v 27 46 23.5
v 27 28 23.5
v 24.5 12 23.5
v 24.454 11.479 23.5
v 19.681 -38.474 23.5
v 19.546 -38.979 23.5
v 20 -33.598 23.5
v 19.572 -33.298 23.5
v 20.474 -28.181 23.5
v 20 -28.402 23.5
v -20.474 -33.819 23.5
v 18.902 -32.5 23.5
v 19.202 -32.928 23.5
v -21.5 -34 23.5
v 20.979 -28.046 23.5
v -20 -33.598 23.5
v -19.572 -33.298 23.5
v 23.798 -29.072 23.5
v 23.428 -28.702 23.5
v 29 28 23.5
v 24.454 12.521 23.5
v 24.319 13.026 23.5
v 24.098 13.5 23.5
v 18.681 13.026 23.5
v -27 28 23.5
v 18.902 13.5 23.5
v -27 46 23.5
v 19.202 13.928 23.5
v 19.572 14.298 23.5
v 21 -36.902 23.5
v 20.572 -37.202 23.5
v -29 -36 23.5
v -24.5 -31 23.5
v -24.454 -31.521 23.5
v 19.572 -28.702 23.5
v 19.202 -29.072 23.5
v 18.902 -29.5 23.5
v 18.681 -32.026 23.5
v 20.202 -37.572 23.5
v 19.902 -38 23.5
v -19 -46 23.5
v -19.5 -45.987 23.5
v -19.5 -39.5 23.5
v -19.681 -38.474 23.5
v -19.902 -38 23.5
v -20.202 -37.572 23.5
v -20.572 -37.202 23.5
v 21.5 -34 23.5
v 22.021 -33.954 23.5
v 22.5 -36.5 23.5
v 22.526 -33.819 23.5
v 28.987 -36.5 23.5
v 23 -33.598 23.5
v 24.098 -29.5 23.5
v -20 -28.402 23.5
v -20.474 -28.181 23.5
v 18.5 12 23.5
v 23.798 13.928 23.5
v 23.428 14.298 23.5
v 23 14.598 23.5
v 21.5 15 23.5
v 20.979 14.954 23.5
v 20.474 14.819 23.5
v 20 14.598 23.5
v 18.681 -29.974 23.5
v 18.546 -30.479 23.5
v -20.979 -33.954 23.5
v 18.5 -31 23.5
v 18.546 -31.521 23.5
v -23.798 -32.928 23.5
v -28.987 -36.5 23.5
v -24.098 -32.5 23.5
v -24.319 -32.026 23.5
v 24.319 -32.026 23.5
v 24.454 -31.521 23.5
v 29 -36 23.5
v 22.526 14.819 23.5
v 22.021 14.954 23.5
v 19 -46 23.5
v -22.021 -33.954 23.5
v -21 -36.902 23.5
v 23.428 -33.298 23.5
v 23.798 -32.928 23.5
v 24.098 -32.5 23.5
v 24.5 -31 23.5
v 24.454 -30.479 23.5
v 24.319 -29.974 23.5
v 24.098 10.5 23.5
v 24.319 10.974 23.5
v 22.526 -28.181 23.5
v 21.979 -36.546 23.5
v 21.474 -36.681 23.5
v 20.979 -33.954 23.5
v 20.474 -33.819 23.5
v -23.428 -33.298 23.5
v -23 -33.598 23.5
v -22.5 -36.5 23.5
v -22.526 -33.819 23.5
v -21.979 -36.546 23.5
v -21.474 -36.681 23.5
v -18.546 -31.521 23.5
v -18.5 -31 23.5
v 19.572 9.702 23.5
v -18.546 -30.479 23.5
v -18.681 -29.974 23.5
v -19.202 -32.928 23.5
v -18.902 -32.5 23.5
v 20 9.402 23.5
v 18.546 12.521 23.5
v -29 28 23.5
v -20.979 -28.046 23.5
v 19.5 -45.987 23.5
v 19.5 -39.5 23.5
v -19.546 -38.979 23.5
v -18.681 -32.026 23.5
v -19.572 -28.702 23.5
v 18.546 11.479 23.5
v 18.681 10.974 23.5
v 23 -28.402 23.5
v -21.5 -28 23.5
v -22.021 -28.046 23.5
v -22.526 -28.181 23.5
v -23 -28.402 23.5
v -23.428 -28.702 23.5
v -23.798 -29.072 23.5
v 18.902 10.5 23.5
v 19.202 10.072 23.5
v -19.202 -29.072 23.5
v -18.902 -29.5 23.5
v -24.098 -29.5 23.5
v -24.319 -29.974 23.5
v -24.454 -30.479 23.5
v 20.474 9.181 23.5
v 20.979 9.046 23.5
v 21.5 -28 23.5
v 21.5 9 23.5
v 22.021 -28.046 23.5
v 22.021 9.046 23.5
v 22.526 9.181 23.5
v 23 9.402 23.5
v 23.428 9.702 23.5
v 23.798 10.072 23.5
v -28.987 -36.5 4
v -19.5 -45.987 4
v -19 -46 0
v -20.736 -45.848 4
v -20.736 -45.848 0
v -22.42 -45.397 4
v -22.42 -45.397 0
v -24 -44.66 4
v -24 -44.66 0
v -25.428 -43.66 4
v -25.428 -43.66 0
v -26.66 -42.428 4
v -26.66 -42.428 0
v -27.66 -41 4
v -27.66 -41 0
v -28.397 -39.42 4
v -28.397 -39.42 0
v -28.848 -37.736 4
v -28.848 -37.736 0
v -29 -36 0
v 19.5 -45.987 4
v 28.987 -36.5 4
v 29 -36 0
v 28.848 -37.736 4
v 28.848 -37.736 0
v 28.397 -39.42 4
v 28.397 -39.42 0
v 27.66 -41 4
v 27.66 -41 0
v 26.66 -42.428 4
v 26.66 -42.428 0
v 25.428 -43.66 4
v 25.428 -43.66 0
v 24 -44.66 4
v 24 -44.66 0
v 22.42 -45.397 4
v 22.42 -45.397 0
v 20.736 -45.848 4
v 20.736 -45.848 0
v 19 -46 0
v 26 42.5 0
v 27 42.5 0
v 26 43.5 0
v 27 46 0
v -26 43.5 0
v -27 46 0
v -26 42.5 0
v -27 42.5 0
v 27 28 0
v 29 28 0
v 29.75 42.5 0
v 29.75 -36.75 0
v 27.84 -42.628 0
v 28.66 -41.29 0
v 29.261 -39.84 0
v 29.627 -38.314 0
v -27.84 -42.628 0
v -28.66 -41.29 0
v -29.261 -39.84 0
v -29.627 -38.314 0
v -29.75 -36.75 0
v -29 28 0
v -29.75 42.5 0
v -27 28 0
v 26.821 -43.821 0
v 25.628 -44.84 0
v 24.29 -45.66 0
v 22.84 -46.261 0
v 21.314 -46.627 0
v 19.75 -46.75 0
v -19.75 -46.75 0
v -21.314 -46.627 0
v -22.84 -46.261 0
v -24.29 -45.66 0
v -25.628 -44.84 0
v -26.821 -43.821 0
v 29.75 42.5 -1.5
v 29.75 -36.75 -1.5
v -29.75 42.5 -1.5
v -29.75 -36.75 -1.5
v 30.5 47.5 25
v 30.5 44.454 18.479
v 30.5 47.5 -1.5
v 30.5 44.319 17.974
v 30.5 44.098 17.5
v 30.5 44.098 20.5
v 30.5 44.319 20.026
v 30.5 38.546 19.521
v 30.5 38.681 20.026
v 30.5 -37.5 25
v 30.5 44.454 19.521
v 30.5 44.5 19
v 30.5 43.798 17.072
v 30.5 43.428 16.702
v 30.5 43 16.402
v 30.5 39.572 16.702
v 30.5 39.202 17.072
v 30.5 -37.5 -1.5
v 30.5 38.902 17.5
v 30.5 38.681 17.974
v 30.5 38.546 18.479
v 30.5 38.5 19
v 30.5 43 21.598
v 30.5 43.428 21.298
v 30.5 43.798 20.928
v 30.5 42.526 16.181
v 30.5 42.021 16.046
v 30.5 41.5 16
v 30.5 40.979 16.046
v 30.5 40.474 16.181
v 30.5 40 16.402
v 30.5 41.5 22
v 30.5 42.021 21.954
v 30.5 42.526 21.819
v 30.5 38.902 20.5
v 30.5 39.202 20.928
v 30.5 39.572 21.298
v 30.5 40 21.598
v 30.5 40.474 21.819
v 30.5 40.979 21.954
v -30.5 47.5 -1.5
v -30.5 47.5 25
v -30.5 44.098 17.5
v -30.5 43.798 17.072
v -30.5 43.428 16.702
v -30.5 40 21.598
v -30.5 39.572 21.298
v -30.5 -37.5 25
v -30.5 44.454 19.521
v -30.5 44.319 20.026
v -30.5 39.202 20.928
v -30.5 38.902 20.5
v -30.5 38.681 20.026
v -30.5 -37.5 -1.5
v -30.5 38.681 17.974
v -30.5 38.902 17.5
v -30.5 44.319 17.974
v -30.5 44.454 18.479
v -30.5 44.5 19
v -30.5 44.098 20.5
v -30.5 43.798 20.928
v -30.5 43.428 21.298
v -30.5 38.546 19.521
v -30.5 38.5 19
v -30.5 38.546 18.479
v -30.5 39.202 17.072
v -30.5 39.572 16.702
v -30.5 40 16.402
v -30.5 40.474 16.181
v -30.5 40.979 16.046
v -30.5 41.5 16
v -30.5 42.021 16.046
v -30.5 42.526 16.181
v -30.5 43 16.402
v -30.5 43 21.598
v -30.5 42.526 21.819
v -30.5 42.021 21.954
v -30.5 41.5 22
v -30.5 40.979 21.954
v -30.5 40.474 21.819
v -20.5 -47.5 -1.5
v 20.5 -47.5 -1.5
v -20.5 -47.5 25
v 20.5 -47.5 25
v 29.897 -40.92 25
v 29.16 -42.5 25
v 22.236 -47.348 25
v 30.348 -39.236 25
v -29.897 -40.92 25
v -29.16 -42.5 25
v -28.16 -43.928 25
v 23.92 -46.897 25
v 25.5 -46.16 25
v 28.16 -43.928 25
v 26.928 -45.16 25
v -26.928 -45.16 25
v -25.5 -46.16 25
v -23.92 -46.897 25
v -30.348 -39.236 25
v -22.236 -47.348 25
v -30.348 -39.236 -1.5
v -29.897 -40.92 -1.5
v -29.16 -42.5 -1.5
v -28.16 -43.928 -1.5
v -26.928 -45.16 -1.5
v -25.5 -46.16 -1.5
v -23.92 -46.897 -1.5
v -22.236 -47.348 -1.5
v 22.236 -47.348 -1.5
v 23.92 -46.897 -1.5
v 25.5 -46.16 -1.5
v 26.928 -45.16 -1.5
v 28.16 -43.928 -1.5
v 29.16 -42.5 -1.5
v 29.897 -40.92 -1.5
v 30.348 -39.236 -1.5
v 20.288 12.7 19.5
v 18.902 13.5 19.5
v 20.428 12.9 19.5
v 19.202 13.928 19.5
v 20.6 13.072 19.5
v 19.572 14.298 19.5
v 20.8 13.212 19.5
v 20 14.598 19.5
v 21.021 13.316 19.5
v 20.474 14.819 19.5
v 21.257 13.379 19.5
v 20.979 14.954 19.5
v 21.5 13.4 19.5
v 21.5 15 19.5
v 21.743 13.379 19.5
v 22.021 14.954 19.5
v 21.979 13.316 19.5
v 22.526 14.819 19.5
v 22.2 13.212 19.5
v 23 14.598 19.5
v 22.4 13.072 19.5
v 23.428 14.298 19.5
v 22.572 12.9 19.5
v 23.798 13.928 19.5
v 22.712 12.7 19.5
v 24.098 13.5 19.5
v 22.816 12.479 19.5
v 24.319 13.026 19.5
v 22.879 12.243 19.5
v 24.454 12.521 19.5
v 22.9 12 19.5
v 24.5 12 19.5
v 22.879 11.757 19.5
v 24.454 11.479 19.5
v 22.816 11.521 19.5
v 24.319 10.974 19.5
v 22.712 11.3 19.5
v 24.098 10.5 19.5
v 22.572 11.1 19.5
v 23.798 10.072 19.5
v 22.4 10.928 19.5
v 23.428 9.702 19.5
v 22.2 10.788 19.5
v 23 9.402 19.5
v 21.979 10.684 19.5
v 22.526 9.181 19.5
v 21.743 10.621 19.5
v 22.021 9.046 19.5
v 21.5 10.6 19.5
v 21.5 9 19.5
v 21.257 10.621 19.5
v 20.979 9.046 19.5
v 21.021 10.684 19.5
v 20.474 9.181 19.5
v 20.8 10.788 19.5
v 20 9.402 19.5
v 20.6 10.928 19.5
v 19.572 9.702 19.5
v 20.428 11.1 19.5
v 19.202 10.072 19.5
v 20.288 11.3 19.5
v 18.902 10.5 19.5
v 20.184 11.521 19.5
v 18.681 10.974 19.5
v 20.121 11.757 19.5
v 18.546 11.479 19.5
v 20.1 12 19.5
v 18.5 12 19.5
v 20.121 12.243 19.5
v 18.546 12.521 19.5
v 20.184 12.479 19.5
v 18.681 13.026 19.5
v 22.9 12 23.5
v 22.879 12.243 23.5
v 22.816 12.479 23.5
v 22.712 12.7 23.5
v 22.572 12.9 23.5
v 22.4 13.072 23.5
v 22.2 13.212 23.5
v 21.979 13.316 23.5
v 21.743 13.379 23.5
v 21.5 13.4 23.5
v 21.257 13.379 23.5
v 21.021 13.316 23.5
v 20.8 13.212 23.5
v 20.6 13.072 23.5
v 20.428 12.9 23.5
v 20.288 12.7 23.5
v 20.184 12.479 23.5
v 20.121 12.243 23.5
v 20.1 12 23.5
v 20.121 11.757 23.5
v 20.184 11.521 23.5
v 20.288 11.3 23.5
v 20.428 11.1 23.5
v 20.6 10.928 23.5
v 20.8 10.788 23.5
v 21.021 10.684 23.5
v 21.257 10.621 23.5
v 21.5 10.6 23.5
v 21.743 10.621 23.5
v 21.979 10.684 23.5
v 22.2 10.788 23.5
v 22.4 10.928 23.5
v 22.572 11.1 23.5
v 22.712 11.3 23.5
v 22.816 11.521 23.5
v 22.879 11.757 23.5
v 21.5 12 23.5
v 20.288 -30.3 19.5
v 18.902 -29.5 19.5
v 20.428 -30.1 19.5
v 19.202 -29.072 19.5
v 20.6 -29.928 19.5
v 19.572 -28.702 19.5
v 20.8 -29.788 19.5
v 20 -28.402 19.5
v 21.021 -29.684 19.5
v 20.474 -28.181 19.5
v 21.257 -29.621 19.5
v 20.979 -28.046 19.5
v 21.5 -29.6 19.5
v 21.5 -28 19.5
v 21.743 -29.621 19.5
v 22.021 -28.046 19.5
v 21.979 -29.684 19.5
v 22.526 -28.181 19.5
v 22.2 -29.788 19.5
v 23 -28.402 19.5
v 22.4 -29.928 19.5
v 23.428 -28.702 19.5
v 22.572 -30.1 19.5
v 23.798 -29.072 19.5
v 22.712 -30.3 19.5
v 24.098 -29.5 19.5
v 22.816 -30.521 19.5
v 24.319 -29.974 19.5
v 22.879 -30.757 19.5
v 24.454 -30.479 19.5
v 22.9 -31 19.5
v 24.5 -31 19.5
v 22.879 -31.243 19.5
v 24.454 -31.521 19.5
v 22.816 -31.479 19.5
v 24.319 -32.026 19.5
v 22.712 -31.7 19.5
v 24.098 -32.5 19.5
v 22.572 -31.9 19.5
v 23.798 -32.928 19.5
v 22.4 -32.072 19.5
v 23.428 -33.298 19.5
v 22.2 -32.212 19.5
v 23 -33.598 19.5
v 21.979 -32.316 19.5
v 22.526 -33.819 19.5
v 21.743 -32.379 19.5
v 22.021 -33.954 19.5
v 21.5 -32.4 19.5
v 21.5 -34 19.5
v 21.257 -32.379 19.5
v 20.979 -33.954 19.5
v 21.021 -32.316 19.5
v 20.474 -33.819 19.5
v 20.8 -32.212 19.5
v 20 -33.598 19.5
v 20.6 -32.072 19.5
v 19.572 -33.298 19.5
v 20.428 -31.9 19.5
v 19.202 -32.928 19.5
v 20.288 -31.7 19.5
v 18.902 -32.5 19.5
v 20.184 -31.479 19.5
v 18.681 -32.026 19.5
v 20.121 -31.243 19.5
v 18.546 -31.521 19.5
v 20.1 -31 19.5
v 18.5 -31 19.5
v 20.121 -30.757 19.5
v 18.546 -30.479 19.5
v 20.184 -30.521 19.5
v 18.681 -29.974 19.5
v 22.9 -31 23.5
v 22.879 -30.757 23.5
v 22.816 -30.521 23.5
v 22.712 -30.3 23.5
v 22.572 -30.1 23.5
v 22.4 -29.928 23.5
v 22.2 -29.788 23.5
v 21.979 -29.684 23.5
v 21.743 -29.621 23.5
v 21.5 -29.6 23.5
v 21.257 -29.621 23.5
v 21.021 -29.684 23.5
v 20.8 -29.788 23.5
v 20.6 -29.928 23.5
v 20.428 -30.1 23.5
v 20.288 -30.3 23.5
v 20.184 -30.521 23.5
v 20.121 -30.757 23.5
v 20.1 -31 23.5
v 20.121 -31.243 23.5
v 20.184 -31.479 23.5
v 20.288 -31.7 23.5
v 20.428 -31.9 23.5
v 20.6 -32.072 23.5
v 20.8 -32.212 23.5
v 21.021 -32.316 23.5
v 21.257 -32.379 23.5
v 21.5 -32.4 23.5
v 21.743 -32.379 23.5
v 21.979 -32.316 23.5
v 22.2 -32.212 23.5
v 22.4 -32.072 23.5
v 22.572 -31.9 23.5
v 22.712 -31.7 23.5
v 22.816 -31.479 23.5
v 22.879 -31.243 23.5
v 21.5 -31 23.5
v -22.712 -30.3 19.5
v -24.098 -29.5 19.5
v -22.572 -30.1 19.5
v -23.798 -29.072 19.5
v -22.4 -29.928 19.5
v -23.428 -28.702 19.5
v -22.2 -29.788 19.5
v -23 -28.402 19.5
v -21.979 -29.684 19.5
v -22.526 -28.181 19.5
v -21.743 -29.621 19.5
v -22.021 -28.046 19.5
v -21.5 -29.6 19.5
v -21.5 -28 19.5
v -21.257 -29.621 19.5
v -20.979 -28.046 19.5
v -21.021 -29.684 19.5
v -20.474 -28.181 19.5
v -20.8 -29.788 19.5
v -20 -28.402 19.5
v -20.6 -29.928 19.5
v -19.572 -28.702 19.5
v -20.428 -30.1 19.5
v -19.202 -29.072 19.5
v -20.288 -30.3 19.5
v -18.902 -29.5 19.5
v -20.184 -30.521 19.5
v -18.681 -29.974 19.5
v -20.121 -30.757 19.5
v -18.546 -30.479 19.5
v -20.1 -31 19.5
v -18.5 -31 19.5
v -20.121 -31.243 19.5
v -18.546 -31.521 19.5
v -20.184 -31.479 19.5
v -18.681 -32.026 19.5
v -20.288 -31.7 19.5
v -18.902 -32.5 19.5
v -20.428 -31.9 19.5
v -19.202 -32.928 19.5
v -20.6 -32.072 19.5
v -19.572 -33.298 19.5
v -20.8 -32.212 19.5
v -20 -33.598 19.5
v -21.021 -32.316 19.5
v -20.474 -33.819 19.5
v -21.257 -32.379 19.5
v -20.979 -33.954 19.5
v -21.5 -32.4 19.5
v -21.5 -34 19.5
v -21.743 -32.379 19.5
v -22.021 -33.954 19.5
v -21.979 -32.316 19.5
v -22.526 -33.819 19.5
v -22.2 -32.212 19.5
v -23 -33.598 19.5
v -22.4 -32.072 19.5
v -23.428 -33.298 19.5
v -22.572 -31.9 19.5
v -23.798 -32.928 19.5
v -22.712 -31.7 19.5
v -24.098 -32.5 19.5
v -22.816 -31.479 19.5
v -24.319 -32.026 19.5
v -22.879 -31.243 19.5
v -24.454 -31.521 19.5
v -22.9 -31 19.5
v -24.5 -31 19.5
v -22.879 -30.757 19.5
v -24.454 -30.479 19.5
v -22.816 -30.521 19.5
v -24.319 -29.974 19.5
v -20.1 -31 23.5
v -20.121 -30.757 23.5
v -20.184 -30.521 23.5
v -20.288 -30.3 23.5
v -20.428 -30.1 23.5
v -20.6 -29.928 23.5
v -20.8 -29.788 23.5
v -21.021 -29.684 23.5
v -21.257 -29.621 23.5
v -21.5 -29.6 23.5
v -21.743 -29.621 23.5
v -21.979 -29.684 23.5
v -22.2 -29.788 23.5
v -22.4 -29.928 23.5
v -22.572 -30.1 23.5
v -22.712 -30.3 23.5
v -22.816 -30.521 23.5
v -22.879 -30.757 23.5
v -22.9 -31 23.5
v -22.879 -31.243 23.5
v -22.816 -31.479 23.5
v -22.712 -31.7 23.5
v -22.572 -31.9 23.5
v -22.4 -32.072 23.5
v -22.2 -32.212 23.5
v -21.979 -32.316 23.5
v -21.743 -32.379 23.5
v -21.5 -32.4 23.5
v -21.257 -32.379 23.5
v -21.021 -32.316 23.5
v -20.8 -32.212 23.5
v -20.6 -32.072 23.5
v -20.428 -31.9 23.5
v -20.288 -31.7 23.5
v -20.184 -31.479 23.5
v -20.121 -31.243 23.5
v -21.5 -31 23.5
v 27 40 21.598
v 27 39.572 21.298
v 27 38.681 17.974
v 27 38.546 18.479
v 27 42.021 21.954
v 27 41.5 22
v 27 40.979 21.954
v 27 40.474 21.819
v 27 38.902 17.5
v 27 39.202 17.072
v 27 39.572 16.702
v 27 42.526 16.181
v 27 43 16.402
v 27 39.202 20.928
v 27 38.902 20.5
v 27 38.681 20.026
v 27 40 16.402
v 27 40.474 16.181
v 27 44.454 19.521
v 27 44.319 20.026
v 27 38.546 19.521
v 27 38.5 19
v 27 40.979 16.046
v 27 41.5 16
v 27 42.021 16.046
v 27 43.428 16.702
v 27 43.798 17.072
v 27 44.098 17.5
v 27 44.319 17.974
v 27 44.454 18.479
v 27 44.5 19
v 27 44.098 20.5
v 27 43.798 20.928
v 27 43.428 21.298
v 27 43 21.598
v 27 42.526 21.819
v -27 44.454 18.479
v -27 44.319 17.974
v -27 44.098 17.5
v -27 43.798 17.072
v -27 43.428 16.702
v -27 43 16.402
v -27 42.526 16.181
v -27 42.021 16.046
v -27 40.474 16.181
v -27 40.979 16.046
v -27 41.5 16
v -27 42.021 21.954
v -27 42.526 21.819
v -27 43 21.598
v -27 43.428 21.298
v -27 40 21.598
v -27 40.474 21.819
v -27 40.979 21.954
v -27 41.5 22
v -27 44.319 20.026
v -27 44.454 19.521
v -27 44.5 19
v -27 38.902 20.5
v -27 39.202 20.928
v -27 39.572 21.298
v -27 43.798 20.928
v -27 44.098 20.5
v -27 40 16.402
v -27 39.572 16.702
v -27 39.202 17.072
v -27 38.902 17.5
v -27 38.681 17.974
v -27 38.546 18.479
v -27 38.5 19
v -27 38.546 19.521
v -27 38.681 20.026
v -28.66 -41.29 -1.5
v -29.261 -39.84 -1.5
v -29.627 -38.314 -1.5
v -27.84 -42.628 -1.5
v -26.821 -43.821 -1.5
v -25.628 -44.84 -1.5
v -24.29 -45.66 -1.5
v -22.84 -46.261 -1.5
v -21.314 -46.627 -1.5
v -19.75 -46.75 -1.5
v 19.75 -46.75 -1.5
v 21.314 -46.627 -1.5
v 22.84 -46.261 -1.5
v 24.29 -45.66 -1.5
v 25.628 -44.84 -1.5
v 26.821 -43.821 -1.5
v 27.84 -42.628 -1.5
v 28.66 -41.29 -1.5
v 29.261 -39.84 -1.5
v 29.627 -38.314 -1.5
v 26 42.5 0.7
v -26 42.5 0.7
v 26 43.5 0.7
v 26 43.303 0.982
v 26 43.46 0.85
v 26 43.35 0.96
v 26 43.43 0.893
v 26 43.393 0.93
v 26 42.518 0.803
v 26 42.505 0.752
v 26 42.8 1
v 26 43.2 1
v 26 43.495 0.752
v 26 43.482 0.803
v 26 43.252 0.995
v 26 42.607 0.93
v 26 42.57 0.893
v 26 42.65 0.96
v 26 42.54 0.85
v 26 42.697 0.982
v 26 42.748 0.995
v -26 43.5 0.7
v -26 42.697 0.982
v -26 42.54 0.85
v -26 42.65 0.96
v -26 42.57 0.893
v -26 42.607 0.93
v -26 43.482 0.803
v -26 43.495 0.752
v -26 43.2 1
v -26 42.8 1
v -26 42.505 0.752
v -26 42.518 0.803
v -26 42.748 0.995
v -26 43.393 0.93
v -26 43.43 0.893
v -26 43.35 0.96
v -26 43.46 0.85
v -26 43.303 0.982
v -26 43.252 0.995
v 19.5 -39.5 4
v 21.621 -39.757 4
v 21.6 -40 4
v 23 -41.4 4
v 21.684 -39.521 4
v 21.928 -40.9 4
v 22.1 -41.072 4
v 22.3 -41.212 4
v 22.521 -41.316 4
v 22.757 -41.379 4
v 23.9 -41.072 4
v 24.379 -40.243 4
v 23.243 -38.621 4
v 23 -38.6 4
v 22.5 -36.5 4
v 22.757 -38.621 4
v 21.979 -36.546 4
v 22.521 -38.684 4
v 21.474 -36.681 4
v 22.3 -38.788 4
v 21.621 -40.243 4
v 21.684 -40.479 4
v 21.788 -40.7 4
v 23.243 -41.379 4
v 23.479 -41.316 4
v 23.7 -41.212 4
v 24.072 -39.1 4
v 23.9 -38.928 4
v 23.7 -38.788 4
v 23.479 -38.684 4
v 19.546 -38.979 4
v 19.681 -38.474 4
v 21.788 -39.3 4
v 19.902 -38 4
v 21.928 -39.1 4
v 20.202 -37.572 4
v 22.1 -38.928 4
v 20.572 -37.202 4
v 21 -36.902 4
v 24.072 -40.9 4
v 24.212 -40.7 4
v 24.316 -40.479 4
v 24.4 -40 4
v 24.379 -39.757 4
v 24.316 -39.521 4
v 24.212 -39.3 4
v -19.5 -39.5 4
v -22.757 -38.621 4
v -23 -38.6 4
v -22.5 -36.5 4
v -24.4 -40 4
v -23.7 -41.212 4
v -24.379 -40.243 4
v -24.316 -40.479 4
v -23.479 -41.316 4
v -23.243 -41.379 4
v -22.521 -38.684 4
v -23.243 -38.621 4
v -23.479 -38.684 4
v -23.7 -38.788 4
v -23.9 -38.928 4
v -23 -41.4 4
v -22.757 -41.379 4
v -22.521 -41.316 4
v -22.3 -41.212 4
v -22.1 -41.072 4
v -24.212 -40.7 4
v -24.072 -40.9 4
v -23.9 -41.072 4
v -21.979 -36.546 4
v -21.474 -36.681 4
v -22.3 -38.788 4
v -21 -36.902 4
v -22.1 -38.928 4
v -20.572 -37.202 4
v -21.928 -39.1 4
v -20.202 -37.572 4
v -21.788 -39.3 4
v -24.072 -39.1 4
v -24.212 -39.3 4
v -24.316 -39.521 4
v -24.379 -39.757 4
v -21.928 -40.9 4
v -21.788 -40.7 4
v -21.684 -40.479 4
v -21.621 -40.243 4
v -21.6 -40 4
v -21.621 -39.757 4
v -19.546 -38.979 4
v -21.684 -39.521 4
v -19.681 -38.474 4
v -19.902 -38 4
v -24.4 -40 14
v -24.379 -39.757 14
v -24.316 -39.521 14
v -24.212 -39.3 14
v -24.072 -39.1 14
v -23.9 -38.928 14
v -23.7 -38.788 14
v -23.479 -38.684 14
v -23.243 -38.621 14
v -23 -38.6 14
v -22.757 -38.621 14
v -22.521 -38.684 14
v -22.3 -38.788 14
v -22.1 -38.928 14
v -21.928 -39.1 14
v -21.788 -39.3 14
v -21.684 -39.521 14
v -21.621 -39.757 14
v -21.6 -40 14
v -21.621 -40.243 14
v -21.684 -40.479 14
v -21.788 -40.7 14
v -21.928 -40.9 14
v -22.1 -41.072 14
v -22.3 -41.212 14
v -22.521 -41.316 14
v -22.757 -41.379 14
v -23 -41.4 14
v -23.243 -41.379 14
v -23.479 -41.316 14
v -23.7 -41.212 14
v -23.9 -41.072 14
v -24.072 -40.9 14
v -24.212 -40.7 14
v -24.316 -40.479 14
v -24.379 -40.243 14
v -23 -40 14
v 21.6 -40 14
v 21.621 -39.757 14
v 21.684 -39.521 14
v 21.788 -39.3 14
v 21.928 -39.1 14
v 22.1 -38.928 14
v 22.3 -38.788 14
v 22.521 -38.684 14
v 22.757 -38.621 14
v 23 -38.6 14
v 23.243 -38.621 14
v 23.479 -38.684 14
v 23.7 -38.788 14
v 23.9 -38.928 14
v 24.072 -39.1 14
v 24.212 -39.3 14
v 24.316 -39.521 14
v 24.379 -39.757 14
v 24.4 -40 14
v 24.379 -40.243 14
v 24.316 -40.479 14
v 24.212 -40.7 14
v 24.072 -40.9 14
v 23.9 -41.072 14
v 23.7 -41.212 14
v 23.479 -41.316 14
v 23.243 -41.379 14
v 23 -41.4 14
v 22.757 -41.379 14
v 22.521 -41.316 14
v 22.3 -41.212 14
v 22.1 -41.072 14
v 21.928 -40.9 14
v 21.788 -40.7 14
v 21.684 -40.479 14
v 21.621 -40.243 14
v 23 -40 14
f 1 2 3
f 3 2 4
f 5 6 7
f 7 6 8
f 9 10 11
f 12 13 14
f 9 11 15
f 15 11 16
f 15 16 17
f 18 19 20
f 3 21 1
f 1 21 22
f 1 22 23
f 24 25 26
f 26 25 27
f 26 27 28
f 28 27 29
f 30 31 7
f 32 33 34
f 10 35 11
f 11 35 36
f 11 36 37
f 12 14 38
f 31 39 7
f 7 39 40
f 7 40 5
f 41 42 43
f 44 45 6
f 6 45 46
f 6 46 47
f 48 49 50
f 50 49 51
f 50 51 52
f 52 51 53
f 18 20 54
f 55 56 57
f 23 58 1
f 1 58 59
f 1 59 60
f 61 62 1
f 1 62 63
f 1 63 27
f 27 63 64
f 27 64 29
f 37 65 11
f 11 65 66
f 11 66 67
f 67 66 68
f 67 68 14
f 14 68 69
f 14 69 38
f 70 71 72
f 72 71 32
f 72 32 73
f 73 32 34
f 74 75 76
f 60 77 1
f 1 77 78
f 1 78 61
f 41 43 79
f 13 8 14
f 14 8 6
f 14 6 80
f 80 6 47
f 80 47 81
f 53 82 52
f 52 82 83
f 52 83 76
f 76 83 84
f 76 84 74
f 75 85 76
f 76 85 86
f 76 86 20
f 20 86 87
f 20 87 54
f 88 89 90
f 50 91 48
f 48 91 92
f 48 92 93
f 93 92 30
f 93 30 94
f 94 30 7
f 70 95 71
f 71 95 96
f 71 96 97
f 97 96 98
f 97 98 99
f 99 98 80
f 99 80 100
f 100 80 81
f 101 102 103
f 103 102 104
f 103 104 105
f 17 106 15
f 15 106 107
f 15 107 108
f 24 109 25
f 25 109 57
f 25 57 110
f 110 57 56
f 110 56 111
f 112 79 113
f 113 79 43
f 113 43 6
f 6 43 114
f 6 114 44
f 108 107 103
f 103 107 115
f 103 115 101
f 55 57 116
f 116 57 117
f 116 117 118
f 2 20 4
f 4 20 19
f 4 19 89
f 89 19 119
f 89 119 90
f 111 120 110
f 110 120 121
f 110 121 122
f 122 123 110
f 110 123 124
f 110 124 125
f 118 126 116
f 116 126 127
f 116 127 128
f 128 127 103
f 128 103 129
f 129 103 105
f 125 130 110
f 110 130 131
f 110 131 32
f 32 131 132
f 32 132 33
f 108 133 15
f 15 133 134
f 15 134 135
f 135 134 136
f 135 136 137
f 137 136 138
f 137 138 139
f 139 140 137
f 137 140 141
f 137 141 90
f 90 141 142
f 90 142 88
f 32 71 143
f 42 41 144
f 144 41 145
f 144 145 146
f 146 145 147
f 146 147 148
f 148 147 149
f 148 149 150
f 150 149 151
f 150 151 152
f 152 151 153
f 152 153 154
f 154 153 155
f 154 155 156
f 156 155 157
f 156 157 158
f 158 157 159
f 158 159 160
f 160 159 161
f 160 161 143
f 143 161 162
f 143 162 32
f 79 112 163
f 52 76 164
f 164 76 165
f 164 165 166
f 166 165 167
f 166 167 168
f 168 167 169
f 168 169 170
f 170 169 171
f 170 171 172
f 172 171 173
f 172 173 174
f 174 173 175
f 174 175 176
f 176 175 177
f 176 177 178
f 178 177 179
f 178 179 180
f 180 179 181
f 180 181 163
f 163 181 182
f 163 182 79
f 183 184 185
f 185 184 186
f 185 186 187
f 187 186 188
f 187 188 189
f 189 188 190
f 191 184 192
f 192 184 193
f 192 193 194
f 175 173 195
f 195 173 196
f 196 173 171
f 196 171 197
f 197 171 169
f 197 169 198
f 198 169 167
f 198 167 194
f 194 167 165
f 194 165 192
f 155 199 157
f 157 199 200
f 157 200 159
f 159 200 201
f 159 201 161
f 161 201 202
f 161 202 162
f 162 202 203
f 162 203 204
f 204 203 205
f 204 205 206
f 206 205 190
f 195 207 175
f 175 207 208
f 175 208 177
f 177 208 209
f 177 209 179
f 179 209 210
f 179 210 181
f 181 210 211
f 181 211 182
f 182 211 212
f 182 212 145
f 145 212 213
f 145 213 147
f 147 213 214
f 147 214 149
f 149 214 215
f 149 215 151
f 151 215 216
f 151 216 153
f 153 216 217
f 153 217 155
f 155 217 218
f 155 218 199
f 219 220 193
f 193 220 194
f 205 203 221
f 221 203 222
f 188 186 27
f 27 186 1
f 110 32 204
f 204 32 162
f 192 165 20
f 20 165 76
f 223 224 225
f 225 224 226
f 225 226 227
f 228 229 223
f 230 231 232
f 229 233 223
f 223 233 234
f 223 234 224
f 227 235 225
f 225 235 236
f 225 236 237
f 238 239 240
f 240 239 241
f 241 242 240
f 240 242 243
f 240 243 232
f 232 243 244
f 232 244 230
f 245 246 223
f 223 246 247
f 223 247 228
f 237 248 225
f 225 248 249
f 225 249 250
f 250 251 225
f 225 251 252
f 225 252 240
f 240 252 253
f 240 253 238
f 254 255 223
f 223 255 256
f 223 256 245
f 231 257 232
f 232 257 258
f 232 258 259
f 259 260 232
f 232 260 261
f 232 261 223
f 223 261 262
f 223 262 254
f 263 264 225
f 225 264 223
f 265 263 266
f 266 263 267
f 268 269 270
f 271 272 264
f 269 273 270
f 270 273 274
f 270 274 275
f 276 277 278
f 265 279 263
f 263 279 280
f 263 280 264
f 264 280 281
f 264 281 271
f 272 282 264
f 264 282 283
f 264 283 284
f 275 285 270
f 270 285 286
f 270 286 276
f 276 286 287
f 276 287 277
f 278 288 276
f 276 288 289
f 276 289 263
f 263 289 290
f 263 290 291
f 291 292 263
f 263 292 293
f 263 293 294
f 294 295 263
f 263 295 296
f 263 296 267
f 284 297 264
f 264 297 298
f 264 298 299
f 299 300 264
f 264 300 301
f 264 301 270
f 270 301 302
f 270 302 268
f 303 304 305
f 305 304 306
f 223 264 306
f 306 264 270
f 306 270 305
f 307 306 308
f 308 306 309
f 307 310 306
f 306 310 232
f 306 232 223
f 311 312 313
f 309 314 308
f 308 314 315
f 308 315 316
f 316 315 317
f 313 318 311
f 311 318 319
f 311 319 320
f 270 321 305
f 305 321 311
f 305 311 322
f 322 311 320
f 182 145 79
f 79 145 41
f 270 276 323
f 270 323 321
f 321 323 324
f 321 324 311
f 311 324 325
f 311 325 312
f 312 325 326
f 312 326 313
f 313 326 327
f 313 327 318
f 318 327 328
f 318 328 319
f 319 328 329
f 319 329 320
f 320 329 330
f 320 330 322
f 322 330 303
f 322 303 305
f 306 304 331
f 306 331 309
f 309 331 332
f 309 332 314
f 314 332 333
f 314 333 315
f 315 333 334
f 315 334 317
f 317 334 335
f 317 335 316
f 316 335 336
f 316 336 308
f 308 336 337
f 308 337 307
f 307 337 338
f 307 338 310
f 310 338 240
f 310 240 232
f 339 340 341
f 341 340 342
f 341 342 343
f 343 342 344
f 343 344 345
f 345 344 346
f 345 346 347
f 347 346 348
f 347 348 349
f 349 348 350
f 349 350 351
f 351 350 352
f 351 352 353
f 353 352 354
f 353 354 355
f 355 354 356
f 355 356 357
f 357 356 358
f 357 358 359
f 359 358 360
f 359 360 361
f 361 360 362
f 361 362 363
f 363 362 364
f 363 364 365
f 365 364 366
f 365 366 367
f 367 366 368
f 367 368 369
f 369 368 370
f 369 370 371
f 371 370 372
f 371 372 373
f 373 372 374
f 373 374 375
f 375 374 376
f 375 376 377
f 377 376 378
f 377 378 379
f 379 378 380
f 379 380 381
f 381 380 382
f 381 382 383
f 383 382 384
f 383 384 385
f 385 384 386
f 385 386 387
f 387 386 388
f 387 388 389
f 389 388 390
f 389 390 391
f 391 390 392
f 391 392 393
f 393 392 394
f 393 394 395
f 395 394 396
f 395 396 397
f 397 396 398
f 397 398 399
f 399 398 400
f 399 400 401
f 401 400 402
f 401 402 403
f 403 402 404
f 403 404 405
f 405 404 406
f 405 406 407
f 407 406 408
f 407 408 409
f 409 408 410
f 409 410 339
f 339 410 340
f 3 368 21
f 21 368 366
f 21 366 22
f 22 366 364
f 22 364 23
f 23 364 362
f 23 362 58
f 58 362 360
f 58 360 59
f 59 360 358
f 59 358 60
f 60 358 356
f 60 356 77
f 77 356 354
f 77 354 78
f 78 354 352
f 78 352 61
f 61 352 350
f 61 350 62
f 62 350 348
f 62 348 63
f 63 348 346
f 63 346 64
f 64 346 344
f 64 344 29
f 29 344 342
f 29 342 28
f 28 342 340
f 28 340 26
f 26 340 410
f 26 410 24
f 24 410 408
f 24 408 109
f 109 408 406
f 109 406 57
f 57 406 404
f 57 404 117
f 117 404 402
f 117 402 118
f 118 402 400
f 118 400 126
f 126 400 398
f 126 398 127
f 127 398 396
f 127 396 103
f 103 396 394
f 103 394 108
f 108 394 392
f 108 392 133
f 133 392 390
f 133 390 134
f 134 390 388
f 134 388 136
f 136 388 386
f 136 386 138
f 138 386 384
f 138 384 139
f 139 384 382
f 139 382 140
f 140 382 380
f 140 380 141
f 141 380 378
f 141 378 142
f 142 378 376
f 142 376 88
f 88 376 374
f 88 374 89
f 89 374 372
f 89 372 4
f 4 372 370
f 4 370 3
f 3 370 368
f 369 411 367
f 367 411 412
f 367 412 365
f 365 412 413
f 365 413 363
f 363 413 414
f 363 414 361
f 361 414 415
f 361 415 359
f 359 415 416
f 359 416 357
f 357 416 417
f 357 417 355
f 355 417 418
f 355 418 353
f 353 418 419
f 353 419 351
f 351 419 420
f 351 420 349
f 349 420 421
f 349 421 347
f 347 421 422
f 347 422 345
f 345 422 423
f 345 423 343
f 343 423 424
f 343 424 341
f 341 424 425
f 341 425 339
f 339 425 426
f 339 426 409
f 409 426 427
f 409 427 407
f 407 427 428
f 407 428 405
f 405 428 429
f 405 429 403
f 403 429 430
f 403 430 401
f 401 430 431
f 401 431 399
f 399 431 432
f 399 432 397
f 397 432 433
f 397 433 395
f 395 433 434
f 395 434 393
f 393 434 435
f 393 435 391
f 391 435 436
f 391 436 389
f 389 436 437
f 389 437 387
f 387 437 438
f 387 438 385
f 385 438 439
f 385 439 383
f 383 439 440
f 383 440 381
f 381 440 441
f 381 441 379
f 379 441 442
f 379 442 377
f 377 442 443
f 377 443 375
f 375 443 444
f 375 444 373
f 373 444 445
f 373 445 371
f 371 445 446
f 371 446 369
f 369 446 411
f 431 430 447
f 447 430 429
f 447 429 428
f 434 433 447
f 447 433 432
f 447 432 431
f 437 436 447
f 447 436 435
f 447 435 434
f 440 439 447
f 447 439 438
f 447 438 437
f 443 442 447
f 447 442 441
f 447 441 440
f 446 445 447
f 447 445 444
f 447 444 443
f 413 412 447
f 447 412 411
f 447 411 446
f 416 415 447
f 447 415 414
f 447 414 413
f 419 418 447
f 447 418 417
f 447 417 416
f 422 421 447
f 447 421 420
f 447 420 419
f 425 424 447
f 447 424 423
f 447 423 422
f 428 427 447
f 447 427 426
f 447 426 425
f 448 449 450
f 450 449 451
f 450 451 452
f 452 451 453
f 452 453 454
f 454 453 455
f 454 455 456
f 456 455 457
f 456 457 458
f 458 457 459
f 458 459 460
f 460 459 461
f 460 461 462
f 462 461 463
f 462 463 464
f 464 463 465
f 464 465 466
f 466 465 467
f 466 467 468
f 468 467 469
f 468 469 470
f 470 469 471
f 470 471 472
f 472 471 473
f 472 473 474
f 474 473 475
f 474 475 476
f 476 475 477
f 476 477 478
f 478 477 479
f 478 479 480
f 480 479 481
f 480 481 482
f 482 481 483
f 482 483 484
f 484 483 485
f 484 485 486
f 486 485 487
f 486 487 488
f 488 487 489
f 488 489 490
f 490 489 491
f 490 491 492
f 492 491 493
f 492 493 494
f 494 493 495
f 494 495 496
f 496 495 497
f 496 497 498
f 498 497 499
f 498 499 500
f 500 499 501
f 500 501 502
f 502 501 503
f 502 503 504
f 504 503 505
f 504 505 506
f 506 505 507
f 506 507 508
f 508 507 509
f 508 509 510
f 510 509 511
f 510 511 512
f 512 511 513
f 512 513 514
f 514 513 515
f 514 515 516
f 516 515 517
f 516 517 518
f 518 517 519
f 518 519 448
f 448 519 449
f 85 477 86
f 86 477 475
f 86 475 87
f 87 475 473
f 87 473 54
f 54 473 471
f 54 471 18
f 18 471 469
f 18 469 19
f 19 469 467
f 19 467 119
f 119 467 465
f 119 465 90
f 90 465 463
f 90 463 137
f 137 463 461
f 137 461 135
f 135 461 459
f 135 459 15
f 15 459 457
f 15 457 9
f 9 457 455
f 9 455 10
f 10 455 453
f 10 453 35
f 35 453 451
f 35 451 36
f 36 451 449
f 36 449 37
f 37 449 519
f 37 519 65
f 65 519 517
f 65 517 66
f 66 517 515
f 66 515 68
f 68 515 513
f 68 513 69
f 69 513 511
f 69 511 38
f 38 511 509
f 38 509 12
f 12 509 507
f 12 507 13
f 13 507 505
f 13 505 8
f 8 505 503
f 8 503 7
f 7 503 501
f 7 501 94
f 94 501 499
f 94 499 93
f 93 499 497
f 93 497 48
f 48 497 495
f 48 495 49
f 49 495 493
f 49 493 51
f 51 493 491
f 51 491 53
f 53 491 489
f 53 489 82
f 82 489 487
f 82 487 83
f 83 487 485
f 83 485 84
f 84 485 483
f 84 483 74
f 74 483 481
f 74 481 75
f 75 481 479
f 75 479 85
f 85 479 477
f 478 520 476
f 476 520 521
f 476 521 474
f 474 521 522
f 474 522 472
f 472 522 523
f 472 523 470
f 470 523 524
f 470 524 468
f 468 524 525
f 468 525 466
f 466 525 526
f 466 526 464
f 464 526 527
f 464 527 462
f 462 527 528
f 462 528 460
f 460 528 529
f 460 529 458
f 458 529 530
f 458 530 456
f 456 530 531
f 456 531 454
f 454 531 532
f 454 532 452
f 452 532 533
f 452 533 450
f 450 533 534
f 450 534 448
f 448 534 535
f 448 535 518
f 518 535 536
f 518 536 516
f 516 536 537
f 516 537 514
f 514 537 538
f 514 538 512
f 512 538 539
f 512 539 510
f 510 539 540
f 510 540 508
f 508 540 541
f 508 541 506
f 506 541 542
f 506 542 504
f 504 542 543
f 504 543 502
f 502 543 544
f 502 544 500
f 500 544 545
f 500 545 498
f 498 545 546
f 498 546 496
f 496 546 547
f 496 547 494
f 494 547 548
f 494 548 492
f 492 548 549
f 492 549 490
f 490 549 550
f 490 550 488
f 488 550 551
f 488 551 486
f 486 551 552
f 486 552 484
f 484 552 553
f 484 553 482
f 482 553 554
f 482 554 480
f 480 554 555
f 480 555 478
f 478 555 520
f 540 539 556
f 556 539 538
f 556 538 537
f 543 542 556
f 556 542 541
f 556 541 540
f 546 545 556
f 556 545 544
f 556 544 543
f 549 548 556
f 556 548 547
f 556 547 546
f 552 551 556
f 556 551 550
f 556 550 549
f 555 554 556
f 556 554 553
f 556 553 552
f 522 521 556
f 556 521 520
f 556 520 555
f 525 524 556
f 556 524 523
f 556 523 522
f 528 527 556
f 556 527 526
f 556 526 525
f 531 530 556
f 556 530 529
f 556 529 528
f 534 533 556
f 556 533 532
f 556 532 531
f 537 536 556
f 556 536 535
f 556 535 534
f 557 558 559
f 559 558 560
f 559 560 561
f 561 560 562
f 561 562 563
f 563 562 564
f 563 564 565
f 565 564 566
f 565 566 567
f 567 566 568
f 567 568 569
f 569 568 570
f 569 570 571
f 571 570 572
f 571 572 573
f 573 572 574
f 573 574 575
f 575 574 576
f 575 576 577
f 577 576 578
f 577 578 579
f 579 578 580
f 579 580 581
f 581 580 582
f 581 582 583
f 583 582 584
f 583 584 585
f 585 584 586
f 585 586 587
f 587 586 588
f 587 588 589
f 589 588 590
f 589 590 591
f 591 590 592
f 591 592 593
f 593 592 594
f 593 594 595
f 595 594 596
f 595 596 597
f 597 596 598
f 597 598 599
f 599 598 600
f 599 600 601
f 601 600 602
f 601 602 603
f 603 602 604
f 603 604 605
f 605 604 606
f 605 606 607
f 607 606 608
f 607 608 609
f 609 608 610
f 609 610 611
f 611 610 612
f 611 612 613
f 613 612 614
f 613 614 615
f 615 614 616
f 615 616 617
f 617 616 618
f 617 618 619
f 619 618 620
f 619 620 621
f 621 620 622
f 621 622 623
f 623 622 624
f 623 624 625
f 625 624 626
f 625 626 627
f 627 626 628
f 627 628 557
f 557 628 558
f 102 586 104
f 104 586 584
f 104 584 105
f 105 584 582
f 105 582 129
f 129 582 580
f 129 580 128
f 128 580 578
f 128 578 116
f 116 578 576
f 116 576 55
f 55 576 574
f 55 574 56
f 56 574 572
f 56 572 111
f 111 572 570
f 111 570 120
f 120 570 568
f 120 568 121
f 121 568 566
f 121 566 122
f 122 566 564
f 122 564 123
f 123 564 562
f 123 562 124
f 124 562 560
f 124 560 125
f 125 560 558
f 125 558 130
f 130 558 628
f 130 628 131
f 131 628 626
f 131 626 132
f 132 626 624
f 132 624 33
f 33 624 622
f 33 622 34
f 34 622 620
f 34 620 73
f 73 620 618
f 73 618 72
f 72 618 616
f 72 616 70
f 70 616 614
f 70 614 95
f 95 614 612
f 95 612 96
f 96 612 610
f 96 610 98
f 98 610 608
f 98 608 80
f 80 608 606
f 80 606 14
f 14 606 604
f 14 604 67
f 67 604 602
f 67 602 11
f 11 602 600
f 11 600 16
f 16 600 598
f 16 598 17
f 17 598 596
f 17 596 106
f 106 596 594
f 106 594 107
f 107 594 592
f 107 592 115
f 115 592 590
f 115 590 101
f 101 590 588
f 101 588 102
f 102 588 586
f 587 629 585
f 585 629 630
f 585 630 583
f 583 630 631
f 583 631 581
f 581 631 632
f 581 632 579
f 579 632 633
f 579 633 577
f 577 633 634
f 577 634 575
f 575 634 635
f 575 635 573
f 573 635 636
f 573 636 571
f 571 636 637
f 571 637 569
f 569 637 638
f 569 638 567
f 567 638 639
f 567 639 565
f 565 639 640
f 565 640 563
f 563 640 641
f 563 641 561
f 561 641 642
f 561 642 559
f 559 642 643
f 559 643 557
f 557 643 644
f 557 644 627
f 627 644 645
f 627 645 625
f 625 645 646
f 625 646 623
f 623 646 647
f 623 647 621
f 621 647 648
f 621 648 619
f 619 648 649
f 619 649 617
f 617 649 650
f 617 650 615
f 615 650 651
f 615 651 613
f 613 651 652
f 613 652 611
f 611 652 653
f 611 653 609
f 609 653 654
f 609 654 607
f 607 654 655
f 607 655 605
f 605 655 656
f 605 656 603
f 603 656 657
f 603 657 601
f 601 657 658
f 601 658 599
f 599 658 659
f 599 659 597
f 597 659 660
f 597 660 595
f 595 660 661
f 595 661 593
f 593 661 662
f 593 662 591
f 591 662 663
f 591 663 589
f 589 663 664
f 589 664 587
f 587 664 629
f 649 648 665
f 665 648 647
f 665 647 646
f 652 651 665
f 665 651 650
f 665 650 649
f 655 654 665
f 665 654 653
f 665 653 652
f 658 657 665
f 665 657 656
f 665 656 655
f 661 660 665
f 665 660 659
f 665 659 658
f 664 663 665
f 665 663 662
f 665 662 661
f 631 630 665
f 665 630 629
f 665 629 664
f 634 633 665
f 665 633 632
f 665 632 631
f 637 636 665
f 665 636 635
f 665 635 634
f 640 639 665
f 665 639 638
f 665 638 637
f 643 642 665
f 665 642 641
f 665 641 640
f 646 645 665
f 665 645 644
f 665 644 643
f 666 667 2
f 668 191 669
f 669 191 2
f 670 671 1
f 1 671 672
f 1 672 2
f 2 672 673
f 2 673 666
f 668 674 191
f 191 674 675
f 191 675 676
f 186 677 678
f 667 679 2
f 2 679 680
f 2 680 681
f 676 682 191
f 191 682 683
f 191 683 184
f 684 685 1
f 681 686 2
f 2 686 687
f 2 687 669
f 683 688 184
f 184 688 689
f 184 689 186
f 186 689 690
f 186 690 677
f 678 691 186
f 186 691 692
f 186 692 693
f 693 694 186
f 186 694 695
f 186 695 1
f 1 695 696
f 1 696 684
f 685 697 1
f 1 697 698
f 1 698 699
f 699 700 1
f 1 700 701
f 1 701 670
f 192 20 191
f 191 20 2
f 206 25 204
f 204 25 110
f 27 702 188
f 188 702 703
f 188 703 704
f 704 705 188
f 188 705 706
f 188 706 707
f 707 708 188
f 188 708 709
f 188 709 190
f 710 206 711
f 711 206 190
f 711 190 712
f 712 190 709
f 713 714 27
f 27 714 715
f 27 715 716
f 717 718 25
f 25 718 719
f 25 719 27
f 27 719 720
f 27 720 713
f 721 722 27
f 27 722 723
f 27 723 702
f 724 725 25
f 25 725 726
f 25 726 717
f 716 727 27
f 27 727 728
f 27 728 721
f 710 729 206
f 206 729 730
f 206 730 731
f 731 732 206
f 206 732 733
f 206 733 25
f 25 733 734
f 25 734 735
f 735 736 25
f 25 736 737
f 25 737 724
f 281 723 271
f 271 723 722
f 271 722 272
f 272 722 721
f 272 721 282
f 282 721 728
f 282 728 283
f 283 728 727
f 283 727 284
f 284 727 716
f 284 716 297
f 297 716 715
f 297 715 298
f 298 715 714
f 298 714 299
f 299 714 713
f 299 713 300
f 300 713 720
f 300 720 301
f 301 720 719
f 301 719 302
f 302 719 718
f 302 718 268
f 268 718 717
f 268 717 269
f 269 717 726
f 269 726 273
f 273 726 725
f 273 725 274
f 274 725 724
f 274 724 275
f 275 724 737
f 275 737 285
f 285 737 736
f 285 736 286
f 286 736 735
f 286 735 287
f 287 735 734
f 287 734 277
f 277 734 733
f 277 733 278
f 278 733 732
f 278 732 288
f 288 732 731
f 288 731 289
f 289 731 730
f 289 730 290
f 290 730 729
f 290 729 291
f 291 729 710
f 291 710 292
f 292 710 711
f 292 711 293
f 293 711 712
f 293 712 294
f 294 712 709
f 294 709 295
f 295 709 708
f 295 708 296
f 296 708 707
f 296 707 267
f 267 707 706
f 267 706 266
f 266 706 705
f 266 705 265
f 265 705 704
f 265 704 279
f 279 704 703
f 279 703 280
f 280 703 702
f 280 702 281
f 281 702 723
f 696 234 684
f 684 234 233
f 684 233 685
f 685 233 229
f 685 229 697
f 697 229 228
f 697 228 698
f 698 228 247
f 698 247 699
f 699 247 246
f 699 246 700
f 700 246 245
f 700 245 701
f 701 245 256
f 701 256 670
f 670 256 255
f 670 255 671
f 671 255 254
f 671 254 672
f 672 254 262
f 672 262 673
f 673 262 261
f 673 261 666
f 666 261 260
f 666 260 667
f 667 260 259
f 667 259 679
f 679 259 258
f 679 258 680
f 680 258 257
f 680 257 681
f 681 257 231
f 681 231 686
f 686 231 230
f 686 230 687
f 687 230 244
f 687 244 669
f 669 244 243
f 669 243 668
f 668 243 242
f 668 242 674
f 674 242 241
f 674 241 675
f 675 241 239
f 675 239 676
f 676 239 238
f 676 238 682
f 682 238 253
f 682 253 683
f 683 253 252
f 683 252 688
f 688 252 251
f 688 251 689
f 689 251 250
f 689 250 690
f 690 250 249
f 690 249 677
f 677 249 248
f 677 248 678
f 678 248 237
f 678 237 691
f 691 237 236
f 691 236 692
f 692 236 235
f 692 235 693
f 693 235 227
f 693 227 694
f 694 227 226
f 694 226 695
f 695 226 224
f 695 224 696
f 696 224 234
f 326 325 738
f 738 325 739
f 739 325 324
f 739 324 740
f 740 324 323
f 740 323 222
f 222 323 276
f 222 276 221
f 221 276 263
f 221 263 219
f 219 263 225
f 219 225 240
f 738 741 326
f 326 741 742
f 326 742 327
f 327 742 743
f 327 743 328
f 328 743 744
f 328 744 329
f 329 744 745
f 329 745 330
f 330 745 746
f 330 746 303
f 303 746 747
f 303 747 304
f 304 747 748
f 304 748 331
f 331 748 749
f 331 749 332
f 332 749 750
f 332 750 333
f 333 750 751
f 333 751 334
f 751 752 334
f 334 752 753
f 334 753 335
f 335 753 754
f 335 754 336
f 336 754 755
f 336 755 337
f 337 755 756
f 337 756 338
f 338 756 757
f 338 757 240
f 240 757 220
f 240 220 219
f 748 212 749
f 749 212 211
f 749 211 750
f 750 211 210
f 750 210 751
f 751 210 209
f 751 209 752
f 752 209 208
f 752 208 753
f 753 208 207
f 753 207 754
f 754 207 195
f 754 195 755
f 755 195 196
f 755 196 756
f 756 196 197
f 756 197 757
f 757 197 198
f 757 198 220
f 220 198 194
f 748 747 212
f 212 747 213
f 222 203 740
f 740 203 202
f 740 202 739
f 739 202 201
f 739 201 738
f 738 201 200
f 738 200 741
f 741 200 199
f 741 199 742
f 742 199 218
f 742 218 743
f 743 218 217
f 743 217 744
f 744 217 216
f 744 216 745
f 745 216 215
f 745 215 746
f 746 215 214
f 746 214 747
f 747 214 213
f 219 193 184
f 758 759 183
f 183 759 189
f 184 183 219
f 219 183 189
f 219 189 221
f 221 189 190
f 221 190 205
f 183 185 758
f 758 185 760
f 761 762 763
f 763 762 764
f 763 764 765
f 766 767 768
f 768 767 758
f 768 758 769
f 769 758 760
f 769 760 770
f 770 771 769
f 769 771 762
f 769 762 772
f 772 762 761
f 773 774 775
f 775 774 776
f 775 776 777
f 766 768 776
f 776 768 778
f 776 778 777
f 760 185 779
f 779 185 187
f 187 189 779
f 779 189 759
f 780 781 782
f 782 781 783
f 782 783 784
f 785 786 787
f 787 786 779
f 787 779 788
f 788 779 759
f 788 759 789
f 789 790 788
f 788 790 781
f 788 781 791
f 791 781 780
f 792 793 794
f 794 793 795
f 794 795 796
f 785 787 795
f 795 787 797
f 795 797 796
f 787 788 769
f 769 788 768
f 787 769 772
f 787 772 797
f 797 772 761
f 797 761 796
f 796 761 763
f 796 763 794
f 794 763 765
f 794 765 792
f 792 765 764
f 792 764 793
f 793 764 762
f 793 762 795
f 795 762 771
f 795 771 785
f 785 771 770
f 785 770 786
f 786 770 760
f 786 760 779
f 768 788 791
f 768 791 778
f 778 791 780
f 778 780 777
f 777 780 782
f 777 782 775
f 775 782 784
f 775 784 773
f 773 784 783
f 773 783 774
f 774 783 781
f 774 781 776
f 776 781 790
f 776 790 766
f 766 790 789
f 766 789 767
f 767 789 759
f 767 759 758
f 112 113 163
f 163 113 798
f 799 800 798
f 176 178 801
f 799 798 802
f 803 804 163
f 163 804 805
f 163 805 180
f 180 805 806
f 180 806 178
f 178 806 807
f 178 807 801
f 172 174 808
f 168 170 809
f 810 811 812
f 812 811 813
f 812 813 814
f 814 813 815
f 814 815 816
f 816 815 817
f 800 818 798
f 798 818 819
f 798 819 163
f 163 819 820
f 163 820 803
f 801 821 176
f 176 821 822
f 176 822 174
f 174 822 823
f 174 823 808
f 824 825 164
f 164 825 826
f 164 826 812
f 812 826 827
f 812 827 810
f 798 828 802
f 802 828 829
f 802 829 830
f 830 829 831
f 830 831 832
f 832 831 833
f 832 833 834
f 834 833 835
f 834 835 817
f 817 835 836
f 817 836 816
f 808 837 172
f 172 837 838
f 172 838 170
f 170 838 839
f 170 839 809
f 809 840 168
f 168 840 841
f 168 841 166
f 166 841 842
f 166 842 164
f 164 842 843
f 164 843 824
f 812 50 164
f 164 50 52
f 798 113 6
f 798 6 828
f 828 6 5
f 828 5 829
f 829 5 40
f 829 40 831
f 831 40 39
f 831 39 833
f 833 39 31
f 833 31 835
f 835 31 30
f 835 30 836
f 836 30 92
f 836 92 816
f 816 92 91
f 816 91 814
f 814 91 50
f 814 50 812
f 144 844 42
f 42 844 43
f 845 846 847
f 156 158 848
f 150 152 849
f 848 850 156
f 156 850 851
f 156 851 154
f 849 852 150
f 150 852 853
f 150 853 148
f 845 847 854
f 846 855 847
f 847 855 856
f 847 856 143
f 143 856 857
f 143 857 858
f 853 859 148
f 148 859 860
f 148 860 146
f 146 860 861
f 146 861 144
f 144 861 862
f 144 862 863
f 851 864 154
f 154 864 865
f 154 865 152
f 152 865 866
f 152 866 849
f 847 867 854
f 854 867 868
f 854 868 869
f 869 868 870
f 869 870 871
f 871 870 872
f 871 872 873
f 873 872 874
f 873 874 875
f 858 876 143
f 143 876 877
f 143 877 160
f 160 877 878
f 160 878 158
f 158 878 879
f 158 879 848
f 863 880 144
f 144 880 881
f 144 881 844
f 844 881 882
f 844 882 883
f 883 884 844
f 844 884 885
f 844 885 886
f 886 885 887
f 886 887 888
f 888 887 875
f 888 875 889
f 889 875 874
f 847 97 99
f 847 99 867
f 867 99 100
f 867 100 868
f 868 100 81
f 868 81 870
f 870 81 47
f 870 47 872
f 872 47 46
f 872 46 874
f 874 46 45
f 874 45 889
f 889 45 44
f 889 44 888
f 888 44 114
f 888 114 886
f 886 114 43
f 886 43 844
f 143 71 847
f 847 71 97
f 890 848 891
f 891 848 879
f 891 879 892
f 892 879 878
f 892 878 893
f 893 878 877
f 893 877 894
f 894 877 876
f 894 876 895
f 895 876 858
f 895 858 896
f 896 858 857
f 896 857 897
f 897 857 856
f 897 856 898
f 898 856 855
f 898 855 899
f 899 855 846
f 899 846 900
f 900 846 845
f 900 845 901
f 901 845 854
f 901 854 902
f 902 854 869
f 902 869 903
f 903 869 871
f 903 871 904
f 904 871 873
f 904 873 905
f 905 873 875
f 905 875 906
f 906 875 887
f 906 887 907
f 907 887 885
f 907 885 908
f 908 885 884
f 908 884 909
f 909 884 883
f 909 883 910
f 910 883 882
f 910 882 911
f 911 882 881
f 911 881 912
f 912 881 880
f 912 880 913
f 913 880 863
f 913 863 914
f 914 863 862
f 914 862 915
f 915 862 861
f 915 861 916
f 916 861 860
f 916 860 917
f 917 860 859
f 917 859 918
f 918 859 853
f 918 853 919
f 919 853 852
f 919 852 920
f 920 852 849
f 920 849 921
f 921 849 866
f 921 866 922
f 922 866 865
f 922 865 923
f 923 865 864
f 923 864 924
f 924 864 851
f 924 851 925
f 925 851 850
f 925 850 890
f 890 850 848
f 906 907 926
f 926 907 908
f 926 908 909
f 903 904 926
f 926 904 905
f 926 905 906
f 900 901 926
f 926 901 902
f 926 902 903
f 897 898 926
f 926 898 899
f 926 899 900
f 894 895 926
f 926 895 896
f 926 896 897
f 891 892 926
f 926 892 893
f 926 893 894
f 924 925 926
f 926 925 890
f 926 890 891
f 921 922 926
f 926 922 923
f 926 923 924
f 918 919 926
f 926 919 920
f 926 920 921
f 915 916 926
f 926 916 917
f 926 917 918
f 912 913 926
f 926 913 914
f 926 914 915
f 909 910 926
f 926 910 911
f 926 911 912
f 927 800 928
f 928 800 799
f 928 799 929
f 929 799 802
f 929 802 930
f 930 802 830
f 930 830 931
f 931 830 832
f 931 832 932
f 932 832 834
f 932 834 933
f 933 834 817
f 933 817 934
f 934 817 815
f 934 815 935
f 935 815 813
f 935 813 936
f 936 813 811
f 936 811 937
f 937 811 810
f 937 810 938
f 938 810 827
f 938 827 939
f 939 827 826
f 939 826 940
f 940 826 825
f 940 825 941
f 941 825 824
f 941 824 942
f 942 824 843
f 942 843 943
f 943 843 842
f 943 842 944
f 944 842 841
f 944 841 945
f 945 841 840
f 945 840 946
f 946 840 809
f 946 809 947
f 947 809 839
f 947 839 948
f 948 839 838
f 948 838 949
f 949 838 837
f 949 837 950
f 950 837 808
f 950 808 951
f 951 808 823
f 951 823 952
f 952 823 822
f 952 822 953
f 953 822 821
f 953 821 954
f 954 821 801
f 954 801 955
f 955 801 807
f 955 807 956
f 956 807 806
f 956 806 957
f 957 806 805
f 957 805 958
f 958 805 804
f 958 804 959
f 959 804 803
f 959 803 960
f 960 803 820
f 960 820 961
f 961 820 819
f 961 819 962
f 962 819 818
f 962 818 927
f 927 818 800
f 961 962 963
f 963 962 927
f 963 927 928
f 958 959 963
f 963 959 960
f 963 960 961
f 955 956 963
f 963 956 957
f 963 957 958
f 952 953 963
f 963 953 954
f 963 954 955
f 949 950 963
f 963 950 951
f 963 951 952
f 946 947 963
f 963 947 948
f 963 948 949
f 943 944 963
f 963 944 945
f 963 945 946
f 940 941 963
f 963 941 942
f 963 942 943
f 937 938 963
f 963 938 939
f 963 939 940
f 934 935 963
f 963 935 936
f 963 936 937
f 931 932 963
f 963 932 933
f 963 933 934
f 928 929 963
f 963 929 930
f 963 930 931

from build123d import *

# Parameters (mm, degrees)
SKETCH1_W               = 61
SKETCH1_H               = 95
BOSS_EXTRUDE1_DEPTH     = 25
SHELL1_T                = -1.5
FILLET1_R               = 10
SKETCH2_R               = 3
SKETCH2_R_2             = 1.4
BOSS_EXTRUDE2_DEPTH     = 4
SKETCH4_W               = 2
SKETCH4_H               = 18
BOSS_EXTRUDE3_DEPTH     = 23.5
SKETCH3_R               = 3
CUT_EXTRUDE1_DEPTH      = 1
CUT_EXTRUDE1_DEPTH_BACK = 62
BOSS_EXTRUDE4_DEPTH     = 1.5
SKETCH6_W               = 59.5
SKETCH6_H               = 4.25
BOSS_EXTRUDE5_DEPTH     = 1.5
SKETCH7_W               = 52
SKETCH7_H               = 1
BOSS_EXTRUDE6_DEPTH     = 1
FILLET2_R               = 0.3
BOSS_EXTRUDE7_DEPTH     = 19.5
SKETCH9_R               = 1.4
CUT_EXTRUDE2_DEPTH      = 10


with BuildPart() as part:
    # Sketch1 → Boss-Extrude1 (new body)
    with BuildSketch(Plane.XY):
        Rectangle(SKETCH1_W, SKETCH1_H)
    extrude(amount=BOSS_EXTRUDE1_DEPTH)

    # Shell1
    shell1_openings = [part.faces().sort_by_distance(p)[0] for p in [
        (0, 0, 0),
    ]]
    offset(amount=SHELL1_T, openings=shell1_openings, kind=Kind.INTERSECTION)

    # Fillet1
    fillet1_edges = [part.edges().sort_by_distance(p)[0] for p in [
        (29, -46, 11.75),
        (-29, -46, 11.75),
        (30.5, -47.5, 12.5),
        (-30.5, -47.5, 12.5),
    ]]
    fillet(fillet1_edges, radius=FILLET1_R)

    # Sketch2 → Boss-Extrude2 (add)
    with BuildSketch(Plane(origin=(0, 0, 23.5), x_dir=(-1, 0, 0), z_dir=(0, 0, -1))):
        with Locations((-21.5, 12)):
            Circle(SKETCH2_R)
        with Locations((-21.5, 12)):
            Circle(SKETCH2_R_2, mode=Mode.SUBTRACT)
        with Locations((-21.5, -31)):
            Circle(SKETCH2_R)
        with Locations((-21.5, -31)):
            Circle(SKETCH2_R_2, mode=Mode.SUBTRACT)
        with Locations((21.5, -31)):
            Circle(SKETCH2_R)
        with Locations((21.5, -31)):
            Circle(SKETCH2_R_2, mode=Mode.SUBTRACT)
    extrude(amount=BOSS_EXTRUDE2_DEPTH)

    # Sketch4 → Boss-Extrude3 (add)
    with BuildSketch(Plane(origin=(0, 0, 23.5), x_dir=(-1, 0, 0), z_dir=(0, 0, -1))):
        with Locations((-28, 37)):
            Rectangle(SKETCH4_W, SKETCH4_H)
        with Locations((28, 37)):
            Rectangle(SKETCH4_W, SKETCH4_H)
    extrude(amount=BOSS_EXTRUDE3_DEPTH)

    # Sketch3 → Cut-Extrude1 (cut, two sides)
    with BuildSketch(Plane(origin=(30.5, 0, 0), x_dir=(0, 0, -1), z_dir=(1, 0, 0))) as cut_extrude1_sk:
        with Locations((-19, 41.5)):
            Circle(SKETCH3_R)
    extrude(amount=CUT_EXTRUDE1_DEPTH, mode=Mode.SUBTRACT)
    extrude(cut_extrude1_sk.sketch, amount=-CUT_EXTRUDE1_DEPTH_BACK, mode=Mode.SUBTRACT)

    # Sketch5 → Boss-Extrude4 (add)
    with BuildSketch(Plane(origin=(0, 0, 0), x_dir=(-1, 0, 0), z_dir=(0, 0, -1))):
        with BuildLine():
            Line((-30.5, 47.5), (30.5, 47.5))
            Line((30.5, 47.5), (30.5, -37.5))
            ThreePointArc((30.5, -37.5), (27.571067812, -44.571067812), (20.5, -47.5))
            Line((20.5, -47.5), (-20.5, -47.5))
            ThreePointArc((-20.5, -47.5), (-27.571067812, -44.571067812), (-30.5, -37.5))
            Line((-30.5, -37.5), (-30.5, 47.5))
        make_face()
        with BuildLine():
            Line((-19.75, -46.75), (19.75, -46.75))
            ThreePointArc((19.75, -46.75), (26.821067812, -43.821067812), (29.75, -36.75))
            Line((29.75, -36.75), (29.75, 46.75))
            Line((29.75, 46.75), (-29.75, 46.75))
            Line((-29.75, 46.75), (-29.75, -36.75))
            ThreePointArc((-29.75, -36.75), (-26.821067812, -43.821067812), (-19.75, -46.75))
        make_face(mode=Mode.SUBTRACT)
    extrude(amount=BOSS_EXTRUDE4_DEPTH)

    # Sketch6 → Boss-Extrude5 (add)
    with BuildSketch(Plane(origin=(0, 0, 0), x_dir=(-1, 0, 0), z_dir=(0, 0, -1))):
        with Locations((0, 44.625)):
            Rectangle(SKETCH6_W, SKETCH6_H)
    extrude(amount=BOSS_EXTRUDE5_DEPTH)

    # Sketch7 → Boss-Extrude6 (add)
    with BuildSketch(Plane.XY):
        with Locations((0, 43)):
            Rectangle(SKETCH7_W, SKETCH7_H)
    extrude(amount=BOSS_EXTRUDE6_DEPTH)

    # Fillet2
    fillet2_edges = [part.edges().sort_by_distance(p)[0] for p in [
        (0, 43.5, 1),
        (0, 42.5, 1),
    ]]
    fillet(fillet2_edges, radius=FILLET2_R)

    # Sketch8 → Boss-Extrude7 (add)
    with BuildSketch(Plane(origin=(0, 0, 23.5), x_dir=(-1, 0, 0), z_dir=(0, 0, -1))):
        with BuildLine():
            Line((-22.5, -36.5), (-28.987492178, -36.5))
            Line((-28.987492178, -36.5), (-28.987492178, -39))
            ThreePointArc((-28.987492178, -39), (-26.937239646, -43.949747468), (-21.987492178, -46))
            Line((-21.987492178, -46), (-19.5, -46))
            Line((-19.5, -46), (-19.5, -39.5))
            ThreePointArc((-19.5, -39.5), (-20.378679656, -37.378679656), (-22.5, -36.5))
        make_face()
        with BuildLine():
            Line((19.5, -46), (19.5, -39.5))
            ThreePointArc((19.5, -39.5), (20.378679656, -37.378679656), (22.5, -36.5))
            Line((22.5, -36.5), (28.987492178, -36.5))
            Line((28.987492178, -36.5), (28.987492178, -39))
            ThreePointArc((28.987492178, -39), (26.937239646, -43.949747468), (21.987492178, -46))
            Line((21.987492178, -46), (19.5, -46))
        make_face()
    extrude(amount=BOSS_EXTRUDE7_DEPTH)

    # Sketch9 → Cut-Extrude2 (cut)
    with BuildSketch(Plane(origin=(0, 0, 4), x_dir=(-1, 0, 0), z_dir=(0, 0, -1))):
        with Locations((-23, -40)):
            Circle(SKETCH9_R)
        with Locations((23, -40)):
            Circle(SKETCH9_R)
    extrude(amount=-CUT_EXTRUDE2_DEPTH, mode=Mode.SUBTRACT)


solid = part.part
